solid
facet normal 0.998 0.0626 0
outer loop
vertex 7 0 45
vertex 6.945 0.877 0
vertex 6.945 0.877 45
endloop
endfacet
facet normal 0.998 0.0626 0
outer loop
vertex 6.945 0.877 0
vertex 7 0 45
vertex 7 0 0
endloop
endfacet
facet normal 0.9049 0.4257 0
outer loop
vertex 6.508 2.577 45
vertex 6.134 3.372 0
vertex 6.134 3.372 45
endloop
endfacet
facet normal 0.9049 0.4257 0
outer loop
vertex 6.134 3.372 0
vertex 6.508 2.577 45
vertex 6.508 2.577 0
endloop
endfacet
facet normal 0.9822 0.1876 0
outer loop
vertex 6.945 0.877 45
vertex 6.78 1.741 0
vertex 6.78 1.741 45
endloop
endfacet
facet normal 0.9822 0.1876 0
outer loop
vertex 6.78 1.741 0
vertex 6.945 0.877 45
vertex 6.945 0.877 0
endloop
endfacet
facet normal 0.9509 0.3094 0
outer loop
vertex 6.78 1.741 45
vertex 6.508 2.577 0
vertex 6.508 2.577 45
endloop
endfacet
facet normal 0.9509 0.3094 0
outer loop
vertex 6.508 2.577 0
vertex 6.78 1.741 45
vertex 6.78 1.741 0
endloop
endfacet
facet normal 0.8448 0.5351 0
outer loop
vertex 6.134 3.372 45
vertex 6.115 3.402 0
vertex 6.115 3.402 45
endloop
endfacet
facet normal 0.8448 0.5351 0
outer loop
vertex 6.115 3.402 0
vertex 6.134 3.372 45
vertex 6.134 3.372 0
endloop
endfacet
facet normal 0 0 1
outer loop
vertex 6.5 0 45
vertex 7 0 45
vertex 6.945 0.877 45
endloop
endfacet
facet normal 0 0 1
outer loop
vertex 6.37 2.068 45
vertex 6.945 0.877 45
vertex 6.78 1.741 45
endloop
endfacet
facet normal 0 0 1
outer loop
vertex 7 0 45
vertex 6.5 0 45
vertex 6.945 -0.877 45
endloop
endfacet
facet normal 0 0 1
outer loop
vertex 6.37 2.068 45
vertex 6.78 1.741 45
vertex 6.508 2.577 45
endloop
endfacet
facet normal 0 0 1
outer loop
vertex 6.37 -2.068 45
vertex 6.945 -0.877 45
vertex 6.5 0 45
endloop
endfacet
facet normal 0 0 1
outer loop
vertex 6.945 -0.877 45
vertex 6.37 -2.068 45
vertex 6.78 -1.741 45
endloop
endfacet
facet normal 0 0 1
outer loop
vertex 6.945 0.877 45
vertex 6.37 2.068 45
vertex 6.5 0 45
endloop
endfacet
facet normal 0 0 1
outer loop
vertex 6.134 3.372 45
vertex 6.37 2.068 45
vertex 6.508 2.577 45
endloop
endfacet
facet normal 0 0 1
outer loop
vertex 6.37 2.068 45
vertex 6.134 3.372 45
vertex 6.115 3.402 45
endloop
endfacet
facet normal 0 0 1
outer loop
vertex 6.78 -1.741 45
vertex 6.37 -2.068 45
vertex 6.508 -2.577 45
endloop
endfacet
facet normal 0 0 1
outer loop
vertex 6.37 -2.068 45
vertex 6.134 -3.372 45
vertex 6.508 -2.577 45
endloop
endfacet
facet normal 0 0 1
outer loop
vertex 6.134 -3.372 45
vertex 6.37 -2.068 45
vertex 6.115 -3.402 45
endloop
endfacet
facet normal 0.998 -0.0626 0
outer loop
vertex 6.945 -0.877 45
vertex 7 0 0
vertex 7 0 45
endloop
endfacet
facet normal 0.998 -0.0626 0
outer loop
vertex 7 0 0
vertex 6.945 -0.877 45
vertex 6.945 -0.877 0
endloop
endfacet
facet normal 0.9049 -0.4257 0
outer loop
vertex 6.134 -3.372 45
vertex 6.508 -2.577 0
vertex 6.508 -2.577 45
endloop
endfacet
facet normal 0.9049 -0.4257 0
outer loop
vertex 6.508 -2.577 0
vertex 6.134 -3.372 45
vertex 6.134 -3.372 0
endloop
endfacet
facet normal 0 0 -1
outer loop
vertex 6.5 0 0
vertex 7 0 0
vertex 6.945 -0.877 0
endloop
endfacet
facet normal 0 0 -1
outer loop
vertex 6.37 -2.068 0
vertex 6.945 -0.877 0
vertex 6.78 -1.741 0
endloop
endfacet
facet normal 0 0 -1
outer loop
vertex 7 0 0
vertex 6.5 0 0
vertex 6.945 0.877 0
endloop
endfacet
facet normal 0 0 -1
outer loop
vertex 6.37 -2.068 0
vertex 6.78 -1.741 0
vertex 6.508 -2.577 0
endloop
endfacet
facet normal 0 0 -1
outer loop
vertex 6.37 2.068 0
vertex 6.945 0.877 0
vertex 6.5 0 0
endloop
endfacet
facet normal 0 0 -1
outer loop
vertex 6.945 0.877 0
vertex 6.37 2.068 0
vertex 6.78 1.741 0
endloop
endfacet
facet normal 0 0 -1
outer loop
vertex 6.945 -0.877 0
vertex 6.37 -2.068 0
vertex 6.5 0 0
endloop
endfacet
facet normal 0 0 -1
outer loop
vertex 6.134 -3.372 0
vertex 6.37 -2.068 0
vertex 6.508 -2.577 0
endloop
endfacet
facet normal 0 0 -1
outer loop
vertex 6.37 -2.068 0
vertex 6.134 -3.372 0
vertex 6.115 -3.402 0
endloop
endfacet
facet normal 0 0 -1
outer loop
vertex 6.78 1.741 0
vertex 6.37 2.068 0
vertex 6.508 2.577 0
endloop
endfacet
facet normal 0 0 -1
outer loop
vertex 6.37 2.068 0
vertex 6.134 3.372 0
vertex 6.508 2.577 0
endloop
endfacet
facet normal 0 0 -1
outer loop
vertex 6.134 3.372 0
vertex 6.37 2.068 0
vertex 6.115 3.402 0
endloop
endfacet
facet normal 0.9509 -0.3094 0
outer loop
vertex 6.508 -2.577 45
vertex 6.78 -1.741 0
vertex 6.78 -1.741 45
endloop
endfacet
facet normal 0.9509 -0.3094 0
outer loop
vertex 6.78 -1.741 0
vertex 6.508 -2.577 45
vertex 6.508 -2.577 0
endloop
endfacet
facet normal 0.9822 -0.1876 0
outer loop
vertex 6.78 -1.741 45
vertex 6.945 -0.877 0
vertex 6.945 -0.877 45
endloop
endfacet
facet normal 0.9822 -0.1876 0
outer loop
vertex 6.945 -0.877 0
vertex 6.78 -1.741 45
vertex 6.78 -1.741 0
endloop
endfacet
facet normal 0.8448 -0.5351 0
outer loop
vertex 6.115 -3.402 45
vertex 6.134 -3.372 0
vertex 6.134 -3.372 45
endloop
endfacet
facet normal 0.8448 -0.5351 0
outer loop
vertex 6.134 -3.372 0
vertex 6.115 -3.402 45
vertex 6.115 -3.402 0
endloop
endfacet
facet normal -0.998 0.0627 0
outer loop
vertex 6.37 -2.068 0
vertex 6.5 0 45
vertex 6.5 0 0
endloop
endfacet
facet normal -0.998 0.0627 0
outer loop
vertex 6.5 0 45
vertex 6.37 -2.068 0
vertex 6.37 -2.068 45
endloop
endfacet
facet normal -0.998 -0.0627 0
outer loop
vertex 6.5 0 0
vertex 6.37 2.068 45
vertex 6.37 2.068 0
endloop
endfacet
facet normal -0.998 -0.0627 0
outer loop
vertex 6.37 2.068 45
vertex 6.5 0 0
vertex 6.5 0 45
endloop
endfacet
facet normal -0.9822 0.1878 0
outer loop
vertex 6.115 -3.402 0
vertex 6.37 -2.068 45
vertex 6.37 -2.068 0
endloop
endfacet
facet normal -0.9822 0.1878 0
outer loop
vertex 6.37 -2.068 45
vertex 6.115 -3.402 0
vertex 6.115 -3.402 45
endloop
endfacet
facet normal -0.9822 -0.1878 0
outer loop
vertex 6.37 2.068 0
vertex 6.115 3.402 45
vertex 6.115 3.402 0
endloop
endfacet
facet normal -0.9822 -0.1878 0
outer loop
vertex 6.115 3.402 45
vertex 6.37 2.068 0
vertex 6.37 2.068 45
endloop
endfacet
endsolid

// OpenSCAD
$fn = 50;


difference() {
	union() {
		cylinder(h = 45, r = 7.0000000000);
		translate(v = [-13.0000000000, 0, 0]) {
			cylinder(h = 45, r = 7.0000000000);
		}
	}
	union() {
		cylinder(h = 45, r = 3.2500000000);
		cylinder(h = 45, r = 1.8000000000);
		cylinder(h = 45, r = 1.8000000000);
		cylinder(h = 45, r = 1.8000000000);
		translate(v = [-17.5000000000, 0, 0]) {
			hull() {
				translate(v = [-3.7500000000, 0.0000000000, 0]) {
					cylinder(h = 45, r = 10.5000000000);
				}
				translate(v = [3.7500000000, 0.0000000000, 0]) {
					cylinder(h = 45, r = 10.5000000000);
				}
				translate(v = [-3.7500000000, -0.0000000000, 0]) {
					cylinder(h = 45, r = 10.5000000000);
				}
				translate(v = [3.7500000000, -0.0000000000, 0]) {
					cylinder(h = 45, r = 10.5000000000);
				}
			}
		}
		translate(v = [-10.0000000000, 0, 0.0000000000]) {
			cylinder(h = 45, r = 16.5000000000);
		}
	}
}
